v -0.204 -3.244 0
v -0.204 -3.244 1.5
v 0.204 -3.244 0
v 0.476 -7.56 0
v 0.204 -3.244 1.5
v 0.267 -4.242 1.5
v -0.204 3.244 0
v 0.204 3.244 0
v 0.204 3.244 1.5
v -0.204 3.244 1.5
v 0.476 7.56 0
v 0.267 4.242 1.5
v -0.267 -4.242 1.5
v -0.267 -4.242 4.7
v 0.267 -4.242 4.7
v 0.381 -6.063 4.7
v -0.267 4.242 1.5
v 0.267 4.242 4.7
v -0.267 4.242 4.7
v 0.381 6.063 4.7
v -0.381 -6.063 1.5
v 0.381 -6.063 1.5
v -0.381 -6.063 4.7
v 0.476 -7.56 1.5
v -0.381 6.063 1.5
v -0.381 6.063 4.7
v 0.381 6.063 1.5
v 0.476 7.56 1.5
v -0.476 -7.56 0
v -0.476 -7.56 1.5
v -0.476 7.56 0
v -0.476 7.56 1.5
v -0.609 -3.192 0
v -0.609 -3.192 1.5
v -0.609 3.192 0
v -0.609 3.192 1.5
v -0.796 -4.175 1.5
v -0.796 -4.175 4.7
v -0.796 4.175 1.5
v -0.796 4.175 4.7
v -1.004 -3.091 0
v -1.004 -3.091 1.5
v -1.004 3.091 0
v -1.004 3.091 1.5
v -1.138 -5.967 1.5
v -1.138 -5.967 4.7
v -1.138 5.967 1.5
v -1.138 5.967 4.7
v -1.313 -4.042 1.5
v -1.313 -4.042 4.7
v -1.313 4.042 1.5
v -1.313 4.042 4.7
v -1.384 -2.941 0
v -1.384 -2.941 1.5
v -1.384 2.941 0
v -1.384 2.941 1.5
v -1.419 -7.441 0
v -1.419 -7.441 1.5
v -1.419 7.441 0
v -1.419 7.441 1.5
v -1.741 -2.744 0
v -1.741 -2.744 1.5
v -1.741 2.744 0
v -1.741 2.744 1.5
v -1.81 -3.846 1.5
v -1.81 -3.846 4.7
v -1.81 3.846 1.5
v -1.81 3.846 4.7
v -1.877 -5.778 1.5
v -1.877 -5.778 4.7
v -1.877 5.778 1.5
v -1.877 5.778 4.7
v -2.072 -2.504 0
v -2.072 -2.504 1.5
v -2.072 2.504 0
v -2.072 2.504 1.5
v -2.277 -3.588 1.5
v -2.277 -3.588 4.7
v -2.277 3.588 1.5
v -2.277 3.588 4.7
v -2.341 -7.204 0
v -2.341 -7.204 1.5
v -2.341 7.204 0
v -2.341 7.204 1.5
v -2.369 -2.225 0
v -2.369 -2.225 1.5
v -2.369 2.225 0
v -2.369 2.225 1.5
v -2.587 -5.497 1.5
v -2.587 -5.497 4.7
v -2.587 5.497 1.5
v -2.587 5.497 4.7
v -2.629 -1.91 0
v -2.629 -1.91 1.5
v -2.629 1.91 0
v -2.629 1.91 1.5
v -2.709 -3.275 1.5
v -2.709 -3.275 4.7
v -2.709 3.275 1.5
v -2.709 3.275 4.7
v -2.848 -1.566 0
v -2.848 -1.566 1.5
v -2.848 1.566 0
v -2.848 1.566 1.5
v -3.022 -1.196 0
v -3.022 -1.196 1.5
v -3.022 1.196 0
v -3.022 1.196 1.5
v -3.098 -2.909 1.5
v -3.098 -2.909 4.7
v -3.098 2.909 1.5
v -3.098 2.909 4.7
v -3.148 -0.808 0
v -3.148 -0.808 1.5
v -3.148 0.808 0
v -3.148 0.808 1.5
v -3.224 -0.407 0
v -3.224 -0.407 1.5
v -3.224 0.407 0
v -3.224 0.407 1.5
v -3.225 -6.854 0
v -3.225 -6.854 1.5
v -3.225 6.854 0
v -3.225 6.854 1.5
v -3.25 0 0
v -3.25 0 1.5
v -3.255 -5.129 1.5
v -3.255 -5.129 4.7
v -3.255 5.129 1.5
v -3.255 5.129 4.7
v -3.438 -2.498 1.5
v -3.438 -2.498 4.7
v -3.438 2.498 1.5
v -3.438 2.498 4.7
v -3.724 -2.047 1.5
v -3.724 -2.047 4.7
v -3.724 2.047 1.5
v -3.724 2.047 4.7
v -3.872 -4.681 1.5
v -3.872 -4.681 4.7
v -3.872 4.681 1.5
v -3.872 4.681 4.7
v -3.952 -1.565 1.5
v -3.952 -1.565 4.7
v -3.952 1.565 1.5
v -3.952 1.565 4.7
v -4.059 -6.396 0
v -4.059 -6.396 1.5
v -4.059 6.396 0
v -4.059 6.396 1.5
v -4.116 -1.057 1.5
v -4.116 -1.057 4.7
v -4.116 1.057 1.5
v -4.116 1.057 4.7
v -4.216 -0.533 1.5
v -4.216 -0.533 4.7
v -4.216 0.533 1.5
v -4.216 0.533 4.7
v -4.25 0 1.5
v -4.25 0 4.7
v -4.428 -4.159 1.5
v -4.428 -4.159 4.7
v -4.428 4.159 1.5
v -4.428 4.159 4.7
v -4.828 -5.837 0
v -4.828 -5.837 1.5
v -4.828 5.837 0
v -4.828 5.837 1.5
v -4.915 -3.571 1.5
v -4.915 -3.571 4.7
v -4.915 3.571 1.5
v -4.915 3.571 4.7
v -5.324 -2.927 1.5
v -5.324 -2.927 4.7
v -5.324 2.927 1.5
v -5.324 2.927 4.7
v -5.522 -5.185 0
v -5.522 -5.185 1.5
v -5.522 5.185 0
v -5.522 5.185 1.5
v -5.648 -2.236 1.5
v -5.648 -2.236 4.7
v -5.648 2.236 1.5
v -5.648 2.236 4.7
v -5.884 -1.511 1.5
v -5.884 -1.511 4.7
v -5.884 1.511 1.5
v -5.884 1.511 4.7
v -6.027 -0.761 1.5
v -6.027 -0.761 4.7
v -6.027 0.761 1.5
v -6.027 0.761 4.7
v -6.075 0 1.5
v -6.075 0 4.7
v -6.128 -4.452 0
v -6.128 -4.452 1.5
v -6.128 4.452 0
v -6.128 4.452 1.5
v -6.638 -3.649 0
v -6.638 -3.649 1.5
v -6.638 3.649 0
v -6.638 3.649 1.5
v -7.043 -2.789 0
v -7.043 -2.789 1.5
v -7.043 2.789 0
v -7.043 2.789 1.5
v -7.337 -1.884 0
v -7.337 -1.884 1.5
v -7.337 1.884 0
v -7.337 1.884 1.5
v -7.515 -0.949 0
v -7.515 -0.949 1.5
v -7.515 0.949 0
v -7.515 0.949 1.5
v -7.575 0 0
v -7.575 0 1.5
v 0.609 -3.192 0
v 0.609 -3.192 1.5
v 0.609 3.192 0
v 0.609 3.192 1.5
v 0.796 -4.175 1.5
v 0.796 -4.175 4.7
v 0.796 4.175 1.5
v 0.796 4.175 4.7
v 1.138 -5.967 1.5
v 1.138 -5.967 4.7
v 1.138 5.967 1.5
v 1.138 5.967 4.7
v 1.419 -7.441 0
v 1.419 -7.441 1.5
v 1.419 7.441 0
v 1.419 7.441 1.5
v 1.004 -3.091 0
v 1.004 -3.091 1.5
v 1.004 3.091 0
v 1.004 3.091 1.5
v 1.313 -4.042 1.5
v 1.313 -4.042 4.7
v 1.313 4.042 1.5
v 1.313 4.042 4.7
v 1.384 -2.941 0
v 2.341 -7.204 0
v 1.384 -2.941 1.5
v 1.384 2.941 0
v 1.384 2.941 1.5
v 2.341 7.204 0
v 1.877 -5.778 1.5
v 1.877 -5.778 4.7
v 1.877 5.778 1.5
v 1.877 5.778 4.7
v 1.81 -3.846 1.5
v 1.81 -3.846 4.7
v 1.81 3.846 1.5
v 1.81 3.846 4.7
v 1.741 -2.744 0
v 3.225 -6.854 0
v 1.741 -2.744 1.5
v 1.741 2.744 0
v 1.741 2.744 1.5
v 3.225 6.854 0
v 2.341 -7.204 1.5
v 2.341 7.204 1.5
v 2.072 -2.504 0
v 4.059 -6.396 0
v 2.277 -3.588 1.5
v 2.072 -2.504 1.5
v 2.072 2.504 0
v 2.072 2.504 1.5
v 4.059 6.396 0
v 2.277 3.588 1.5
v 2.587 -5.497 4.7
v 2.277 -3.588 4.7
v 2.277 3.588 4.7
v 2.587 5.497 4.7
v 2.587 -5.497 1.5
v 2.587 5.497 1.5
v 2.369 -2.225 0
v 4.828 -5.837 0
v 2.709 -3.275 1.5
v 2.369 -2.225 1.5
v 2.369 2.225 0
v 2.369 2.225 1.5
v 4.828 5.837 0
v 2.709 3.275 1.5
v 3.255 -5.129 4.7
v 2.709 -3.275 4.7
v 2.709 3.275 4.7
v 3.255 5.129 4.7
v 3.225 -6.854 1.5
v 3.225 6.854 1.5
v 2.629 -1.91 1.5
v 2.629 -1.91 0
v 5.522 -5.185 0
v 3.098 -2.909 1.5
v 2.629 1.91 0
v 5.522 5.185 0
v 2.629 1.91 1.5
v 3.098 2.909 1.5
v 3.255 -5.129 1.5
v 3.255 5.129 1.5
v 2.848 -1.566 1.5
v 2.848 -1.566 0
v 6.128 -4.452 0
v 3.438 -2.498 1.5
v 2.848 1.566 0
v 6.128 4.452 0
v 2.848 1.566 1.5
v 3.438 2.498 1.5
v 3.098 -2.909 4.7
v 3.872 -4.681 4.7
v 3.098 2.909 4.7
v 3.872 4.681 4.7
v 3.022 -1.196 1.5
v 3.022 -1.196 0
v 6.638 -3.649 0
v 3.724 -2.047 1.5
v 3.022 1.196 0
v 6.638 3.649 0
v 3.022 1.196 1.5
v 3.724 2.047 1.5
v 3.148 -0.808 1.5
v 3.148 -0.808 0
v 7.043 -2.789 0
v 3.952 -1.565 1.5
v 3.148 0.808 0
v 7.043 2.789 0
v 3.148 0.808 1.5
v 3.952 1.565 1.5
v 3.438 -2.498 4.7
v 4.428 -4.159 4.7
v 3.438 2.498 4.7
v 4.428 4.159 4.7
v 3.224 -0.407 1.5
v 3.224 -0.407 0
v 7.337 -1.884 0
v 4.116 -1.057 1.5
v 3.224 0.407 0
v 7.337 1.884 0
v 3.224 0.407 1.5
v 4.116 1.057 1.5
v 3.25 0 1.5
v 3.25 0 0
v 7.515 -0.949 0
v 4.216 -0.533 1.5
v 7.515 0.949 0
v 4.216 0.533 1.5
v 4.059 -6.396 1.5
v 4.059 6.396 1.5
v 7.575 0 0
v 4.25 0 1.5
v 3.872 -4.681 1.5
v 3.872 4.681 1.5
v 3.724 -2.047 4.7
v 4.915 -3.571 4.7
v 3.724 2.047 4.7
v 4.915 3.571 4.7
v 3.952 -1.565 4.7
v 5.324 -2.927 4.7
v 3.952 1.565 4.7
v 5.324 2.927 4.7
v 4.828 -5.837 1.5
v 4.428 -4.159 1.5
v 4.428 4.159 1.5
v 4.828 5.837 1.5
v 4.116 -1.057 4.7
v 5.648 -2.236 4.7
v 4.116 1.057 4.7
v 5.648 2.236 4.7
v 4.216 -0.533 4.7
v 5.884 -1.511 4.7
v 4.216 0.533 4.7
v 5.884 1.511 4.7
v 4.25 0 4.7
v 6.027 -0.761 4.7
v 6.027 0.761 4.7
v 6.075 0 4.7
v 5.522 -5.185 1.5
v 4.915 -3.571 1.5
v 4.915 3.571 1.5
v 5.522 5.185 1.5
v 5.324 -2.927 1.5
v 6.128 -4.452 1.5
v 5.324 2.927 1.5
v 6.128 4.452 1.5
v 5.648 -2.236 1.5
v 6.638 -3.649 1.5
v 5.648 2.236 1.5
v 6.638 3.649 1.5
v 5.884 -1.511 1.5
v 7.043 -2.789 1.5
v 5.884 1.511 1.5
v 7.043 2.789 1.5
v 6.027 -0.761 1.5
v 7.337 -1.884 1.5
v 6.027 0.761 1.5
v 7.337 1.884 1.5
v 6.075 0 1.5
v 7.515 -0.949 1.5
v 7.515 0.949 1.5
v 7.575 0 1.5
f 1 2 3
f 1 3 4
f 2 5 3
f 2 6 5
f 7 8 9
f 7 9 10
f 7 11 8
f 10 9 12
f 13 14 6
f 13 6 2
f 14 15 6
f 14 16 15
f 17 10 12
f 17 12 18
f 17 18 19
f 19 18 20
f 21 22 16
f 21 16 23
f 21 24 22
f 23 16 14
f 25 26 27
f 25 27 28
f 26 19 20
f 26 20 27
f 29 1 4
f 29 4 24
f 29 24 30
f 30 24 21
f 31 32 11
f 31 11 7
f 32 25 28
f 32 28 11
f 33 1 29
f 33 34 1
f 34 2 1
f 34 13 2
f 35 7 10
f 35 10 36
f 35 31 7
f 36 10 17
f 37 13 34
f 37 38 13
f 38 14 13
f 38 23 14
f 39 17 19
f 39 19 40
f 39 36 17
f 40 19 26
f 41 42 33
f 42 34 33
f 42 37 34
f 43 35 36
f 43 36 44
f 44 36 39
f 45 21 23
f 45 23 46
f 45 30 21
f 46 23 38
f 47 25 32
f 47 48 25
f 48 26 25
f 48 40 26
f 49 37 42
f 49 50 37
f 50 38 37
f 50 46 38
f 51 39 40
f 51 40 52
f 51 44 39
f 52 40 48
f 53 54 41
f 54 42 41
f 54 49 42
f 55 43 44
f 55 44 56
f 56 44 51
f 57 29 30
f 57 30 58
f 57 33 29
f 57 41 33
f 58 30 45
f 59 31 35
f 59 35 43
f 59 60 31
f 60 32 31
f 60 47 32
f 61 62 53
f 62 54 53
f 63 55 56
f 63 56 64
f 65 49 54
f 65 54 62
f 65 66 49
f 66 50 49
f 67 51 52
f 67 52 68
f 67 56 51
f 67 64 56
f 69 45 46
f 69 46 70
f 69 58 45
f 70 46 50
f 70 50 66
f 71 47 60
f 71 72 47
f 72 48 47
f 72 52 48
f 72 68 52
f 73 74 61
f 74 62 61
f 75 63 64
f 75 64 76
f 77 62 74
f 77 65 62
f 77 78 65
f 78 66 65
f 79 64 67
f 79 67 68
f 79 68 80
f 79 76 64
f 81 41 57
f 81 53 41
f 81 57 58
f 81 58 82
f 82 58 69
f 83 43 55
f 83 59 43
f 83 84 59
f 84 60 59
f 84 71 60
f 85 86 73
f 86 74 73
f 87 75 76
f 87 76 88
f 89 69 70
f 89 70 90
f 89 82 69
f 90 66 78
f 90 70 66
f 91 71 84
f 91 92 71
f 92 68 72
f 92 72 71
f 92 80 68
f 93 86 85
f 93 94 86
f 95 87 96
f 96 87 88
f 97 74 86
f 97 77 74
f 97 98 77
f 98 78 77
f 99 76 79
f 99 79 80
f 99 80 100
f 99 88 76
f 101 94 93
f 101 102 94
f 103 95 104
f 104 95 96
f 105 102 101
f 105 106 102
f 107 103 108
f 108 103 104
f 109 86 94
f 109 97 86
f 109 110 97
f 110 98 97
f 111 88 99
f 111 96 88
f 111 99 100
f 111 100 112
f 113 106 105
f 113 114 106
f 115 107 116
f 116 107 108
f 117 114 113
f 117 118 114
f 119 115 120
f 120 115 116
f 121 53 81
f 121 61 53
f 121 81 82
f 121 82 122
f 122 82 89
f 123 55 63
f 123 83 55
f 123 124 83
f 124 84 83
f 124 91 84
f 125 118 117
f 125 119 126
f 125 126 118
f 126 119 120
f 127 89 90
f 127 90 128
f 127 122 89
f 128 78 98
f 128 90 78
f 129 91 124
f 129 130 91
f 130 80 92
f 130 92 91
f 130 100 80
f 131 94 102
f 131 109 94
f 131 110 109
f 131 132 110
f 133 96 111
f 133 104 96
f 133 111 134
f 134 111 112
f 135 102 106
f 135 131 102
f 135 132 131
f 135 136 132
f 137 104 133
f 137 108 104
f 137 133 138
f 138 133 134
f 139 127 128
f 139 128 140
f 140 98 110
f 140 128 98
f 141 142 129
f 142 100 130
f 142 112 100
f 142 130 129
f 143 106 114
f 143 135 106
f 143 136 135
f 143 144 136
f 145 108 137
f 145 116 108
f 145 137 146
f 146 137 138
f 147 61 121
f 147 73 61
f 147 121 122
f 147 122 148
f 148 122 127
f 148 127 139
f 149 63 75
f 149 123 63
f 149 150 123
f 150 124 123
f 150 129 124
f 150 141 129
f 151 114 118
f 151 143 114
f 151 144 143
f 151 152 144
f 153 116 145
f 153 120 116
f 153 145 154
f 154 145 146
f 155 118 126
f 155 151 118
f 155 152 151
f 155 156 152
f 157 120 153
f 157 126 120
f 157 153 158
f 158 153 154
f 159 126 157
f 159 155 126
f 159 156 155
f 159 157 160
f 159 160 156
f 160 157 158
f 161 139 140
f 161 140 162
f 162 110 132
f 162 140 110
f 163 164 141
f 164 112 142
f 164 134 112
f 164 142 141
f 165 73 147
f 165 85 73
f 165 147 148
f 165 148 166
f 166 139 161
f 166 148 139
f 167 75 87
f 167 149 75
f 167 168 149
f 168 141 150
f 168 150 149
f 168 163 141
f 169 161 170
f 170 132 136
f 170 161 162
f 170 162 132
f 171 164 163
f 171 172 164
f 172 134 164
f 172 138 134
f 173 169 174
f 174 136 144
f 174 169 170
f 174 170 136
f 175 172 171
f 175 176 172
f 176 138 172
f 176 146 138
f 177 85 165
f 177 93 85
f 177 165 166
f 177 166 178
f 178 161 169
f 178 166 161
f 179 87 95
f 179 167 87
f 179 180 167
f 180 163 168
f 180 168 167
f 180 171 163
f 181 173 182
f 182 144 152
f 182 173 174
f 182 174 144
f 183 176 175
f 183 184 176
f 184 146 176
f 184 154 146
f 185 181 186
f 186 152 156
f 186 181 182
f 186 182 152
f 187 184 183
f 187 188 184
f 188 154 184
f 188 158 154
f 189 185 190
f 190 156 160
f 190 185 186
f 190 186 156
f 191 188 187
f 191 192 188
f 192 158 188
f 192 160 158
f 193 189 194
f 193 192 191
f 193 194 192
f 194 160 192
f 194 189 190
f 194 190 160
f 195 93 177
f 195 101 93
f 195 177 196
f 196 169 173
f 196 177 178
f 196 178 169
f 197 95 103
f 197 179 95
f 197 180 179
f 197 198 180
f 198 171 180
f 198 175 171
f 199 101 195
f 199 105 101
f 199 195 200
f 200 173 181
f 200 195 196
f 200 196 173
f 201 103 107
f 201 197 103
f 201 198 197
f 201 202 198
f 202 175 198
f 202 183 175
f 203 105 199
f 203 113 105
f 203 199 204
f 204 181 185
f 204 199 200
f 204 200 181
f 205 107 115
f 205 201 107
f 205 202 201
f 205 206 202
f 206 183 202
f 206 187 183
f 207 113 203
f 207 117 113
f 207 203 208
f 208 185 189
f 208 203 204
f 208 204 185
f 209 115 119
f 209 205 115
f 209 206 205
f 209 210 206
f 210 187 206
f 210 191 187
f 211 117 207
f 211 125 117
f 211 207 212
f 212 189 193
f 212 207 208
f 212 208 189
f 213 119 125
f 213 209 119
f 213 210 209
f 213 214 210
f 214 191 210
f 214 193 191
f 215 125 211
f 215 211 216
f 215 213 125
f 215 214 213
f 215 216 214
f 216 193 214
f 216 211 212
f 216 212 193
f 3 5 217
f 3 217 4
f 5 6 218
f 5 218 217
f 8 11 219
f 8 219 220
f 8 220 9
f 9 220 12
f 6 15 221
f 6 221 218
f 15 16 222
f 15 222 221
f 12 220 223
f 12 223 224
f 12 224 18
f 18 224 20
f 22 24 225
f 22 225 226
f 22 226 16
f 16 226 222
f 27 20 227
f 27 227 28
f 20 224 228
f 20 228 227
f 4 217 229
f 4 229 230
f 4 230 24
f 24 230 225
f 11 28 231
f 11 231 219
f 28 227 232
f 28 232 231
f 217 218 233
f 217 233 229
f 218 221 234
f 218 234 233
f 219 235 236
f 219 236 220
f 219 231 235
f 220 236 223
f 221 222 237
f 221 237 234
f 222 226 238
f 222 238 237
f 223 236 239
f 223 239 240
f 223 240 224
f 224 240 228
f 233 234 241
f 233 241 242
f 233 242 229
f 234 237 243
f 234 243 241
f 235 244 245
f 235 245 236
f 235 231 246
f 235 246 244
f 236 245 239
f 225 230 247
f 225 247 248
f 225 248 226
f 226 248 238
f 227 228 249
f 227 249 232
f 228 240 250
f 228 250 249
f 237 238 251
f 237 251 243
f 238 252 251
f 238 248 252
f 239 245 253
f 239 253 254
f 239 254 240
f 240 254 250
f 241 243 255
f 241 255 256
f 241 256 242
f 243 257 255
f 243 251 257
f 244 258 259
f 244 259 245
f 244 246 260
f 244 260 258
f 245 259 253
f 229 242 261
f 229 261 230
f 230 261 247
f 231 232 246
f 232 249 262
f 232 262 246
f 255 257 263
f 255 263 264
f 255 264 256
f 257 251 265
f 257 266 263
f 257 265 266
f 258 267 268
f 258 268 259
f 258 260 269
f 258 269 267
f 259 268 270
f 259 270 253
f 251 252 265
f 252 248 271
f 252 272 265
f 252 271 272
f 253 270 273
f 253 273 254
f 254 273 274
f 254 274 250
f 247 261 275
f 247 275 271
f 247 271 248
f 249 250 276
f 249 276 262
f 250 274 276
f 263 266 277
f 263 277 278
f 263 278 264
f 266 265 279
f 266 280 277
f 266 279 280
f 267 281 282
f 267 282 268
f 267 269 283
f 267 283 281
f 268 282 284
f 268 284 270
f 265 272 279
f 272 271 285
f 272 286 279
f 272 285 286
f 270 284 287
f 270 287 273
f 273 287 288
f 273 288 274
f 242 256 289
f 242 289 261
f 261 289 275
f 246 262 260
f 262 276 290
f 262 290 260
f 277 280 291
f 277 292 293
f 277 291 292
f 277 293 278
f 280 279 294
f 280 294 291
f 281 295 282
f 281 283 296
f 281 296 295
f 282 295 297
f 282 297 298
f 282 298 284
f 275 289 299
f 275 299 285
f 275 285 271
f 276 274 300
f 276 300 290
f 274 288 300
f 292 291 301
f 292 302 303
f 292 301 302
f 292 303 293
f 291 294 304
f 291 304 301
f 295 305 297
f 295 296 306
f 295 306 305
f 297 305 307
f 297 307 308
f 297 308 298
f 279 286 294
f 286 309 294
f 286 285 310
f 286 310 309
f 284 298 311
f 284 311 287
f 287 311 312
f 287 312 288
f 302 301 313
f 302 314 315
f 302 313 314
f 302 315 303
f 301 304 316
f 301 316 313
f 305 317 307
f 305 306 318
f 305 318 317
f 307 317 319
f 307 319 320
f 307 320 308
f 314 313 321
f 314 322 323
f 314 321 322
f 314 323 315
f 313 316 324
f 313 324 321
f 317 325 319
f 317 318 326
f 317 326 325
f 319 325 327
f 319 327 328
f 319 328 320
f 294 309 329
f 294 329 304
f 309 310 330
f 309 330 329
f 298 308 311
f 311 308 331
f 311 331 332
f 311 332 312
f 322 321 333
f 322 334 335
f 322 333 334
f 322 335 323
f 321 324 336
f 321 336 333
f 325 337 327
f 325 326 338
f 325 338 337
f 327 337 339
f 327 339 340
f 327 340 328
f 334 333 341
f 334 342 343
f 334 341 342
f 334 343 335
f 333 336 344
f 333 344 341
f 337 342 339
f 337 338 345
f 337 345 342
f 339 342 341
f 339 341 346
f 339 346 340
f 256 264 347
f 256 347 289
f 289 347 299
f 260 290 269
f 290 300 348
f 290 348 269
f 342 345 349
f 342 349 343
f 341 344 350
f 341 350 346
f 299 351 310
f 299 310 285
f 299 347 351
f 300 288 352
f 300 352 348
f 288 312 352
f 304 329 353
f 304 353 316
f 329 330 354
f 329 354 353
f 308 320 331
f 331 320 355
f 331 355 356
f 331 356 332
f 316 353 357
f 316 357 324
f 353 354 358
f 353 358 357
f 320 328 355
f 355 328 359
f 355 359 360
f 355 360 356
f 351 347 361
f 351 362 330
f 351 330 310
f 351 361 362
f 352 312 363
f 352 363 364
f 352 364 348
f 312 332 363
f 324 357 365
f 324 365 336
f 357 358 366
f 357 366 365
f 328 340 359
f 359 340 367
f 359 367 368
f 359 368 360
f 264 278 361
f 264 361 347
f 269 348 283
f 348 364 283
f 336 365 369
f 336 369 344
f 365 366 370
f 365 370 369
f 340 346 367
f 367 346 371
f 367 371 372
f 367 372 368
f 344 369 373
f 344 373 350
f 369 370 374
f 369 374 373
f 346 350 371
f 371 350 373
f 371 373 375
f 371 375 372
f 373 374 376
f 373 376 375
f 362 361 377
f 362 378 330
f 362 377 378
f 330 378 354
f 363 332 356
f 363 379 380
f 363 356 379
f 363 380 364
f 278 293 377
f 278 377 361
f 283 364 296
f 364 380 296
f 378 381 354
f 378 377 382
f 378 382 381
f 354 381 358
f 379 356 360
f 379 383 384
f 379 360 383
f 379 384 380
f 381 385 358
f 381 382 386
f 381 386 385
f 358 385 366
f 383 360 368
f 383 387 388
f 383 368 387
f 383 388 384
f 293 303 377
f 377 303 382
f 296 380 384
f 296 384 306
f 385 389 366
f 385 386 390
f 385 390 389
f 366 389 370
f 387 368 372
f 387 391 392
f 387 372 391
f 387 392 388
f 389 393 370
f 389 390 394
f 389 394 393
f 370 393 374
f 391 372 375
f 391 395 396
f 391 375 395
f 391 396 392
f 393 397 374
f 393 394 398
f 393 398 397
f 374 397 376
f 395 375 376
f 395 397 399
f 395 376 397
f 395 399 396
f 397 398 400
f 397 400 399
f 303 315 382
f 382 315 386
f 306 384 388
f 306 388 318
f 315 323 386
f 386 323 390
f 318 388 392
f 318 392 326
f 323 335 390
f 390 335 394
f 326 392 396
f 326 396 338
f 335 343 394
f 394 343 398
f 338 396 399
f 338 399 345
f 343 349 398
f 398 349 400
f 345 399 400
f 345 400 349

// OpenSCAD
// file: ../888_1023.scad
include <../parameters.scad>

draft = $preview;

module 888_1023(height = 3, draft = true){

    inner_diameter = M8_screw_diameter;
    outer_diameter = bearing_efsm_12_d + 3;
    rim_height = 1.5;
    bearng_ball_height = height;

    difference(){
        union(){
            cylinder(h = rim_height, d = outer_diameter, $fn = 50);
            translate([0,0,rim_height])
                cylinder(h = bearng_ball_height, d = bearing_efsm_12_d, $fn = 50);
        }


        cylinder(d = M6_screw_diameter, h = 10, $fn = 50);

        translate([0, 0, rim_height])
            cylinder(h = 2 * bearng_ball_height , d = inner_diameter, $fn = 50);
    }
}

888_1023(3, draft);
// main file
include <../../parameters.scad>
use <../888_1023.scad>

draft = $preview;

888_1023(3.2, draft);
